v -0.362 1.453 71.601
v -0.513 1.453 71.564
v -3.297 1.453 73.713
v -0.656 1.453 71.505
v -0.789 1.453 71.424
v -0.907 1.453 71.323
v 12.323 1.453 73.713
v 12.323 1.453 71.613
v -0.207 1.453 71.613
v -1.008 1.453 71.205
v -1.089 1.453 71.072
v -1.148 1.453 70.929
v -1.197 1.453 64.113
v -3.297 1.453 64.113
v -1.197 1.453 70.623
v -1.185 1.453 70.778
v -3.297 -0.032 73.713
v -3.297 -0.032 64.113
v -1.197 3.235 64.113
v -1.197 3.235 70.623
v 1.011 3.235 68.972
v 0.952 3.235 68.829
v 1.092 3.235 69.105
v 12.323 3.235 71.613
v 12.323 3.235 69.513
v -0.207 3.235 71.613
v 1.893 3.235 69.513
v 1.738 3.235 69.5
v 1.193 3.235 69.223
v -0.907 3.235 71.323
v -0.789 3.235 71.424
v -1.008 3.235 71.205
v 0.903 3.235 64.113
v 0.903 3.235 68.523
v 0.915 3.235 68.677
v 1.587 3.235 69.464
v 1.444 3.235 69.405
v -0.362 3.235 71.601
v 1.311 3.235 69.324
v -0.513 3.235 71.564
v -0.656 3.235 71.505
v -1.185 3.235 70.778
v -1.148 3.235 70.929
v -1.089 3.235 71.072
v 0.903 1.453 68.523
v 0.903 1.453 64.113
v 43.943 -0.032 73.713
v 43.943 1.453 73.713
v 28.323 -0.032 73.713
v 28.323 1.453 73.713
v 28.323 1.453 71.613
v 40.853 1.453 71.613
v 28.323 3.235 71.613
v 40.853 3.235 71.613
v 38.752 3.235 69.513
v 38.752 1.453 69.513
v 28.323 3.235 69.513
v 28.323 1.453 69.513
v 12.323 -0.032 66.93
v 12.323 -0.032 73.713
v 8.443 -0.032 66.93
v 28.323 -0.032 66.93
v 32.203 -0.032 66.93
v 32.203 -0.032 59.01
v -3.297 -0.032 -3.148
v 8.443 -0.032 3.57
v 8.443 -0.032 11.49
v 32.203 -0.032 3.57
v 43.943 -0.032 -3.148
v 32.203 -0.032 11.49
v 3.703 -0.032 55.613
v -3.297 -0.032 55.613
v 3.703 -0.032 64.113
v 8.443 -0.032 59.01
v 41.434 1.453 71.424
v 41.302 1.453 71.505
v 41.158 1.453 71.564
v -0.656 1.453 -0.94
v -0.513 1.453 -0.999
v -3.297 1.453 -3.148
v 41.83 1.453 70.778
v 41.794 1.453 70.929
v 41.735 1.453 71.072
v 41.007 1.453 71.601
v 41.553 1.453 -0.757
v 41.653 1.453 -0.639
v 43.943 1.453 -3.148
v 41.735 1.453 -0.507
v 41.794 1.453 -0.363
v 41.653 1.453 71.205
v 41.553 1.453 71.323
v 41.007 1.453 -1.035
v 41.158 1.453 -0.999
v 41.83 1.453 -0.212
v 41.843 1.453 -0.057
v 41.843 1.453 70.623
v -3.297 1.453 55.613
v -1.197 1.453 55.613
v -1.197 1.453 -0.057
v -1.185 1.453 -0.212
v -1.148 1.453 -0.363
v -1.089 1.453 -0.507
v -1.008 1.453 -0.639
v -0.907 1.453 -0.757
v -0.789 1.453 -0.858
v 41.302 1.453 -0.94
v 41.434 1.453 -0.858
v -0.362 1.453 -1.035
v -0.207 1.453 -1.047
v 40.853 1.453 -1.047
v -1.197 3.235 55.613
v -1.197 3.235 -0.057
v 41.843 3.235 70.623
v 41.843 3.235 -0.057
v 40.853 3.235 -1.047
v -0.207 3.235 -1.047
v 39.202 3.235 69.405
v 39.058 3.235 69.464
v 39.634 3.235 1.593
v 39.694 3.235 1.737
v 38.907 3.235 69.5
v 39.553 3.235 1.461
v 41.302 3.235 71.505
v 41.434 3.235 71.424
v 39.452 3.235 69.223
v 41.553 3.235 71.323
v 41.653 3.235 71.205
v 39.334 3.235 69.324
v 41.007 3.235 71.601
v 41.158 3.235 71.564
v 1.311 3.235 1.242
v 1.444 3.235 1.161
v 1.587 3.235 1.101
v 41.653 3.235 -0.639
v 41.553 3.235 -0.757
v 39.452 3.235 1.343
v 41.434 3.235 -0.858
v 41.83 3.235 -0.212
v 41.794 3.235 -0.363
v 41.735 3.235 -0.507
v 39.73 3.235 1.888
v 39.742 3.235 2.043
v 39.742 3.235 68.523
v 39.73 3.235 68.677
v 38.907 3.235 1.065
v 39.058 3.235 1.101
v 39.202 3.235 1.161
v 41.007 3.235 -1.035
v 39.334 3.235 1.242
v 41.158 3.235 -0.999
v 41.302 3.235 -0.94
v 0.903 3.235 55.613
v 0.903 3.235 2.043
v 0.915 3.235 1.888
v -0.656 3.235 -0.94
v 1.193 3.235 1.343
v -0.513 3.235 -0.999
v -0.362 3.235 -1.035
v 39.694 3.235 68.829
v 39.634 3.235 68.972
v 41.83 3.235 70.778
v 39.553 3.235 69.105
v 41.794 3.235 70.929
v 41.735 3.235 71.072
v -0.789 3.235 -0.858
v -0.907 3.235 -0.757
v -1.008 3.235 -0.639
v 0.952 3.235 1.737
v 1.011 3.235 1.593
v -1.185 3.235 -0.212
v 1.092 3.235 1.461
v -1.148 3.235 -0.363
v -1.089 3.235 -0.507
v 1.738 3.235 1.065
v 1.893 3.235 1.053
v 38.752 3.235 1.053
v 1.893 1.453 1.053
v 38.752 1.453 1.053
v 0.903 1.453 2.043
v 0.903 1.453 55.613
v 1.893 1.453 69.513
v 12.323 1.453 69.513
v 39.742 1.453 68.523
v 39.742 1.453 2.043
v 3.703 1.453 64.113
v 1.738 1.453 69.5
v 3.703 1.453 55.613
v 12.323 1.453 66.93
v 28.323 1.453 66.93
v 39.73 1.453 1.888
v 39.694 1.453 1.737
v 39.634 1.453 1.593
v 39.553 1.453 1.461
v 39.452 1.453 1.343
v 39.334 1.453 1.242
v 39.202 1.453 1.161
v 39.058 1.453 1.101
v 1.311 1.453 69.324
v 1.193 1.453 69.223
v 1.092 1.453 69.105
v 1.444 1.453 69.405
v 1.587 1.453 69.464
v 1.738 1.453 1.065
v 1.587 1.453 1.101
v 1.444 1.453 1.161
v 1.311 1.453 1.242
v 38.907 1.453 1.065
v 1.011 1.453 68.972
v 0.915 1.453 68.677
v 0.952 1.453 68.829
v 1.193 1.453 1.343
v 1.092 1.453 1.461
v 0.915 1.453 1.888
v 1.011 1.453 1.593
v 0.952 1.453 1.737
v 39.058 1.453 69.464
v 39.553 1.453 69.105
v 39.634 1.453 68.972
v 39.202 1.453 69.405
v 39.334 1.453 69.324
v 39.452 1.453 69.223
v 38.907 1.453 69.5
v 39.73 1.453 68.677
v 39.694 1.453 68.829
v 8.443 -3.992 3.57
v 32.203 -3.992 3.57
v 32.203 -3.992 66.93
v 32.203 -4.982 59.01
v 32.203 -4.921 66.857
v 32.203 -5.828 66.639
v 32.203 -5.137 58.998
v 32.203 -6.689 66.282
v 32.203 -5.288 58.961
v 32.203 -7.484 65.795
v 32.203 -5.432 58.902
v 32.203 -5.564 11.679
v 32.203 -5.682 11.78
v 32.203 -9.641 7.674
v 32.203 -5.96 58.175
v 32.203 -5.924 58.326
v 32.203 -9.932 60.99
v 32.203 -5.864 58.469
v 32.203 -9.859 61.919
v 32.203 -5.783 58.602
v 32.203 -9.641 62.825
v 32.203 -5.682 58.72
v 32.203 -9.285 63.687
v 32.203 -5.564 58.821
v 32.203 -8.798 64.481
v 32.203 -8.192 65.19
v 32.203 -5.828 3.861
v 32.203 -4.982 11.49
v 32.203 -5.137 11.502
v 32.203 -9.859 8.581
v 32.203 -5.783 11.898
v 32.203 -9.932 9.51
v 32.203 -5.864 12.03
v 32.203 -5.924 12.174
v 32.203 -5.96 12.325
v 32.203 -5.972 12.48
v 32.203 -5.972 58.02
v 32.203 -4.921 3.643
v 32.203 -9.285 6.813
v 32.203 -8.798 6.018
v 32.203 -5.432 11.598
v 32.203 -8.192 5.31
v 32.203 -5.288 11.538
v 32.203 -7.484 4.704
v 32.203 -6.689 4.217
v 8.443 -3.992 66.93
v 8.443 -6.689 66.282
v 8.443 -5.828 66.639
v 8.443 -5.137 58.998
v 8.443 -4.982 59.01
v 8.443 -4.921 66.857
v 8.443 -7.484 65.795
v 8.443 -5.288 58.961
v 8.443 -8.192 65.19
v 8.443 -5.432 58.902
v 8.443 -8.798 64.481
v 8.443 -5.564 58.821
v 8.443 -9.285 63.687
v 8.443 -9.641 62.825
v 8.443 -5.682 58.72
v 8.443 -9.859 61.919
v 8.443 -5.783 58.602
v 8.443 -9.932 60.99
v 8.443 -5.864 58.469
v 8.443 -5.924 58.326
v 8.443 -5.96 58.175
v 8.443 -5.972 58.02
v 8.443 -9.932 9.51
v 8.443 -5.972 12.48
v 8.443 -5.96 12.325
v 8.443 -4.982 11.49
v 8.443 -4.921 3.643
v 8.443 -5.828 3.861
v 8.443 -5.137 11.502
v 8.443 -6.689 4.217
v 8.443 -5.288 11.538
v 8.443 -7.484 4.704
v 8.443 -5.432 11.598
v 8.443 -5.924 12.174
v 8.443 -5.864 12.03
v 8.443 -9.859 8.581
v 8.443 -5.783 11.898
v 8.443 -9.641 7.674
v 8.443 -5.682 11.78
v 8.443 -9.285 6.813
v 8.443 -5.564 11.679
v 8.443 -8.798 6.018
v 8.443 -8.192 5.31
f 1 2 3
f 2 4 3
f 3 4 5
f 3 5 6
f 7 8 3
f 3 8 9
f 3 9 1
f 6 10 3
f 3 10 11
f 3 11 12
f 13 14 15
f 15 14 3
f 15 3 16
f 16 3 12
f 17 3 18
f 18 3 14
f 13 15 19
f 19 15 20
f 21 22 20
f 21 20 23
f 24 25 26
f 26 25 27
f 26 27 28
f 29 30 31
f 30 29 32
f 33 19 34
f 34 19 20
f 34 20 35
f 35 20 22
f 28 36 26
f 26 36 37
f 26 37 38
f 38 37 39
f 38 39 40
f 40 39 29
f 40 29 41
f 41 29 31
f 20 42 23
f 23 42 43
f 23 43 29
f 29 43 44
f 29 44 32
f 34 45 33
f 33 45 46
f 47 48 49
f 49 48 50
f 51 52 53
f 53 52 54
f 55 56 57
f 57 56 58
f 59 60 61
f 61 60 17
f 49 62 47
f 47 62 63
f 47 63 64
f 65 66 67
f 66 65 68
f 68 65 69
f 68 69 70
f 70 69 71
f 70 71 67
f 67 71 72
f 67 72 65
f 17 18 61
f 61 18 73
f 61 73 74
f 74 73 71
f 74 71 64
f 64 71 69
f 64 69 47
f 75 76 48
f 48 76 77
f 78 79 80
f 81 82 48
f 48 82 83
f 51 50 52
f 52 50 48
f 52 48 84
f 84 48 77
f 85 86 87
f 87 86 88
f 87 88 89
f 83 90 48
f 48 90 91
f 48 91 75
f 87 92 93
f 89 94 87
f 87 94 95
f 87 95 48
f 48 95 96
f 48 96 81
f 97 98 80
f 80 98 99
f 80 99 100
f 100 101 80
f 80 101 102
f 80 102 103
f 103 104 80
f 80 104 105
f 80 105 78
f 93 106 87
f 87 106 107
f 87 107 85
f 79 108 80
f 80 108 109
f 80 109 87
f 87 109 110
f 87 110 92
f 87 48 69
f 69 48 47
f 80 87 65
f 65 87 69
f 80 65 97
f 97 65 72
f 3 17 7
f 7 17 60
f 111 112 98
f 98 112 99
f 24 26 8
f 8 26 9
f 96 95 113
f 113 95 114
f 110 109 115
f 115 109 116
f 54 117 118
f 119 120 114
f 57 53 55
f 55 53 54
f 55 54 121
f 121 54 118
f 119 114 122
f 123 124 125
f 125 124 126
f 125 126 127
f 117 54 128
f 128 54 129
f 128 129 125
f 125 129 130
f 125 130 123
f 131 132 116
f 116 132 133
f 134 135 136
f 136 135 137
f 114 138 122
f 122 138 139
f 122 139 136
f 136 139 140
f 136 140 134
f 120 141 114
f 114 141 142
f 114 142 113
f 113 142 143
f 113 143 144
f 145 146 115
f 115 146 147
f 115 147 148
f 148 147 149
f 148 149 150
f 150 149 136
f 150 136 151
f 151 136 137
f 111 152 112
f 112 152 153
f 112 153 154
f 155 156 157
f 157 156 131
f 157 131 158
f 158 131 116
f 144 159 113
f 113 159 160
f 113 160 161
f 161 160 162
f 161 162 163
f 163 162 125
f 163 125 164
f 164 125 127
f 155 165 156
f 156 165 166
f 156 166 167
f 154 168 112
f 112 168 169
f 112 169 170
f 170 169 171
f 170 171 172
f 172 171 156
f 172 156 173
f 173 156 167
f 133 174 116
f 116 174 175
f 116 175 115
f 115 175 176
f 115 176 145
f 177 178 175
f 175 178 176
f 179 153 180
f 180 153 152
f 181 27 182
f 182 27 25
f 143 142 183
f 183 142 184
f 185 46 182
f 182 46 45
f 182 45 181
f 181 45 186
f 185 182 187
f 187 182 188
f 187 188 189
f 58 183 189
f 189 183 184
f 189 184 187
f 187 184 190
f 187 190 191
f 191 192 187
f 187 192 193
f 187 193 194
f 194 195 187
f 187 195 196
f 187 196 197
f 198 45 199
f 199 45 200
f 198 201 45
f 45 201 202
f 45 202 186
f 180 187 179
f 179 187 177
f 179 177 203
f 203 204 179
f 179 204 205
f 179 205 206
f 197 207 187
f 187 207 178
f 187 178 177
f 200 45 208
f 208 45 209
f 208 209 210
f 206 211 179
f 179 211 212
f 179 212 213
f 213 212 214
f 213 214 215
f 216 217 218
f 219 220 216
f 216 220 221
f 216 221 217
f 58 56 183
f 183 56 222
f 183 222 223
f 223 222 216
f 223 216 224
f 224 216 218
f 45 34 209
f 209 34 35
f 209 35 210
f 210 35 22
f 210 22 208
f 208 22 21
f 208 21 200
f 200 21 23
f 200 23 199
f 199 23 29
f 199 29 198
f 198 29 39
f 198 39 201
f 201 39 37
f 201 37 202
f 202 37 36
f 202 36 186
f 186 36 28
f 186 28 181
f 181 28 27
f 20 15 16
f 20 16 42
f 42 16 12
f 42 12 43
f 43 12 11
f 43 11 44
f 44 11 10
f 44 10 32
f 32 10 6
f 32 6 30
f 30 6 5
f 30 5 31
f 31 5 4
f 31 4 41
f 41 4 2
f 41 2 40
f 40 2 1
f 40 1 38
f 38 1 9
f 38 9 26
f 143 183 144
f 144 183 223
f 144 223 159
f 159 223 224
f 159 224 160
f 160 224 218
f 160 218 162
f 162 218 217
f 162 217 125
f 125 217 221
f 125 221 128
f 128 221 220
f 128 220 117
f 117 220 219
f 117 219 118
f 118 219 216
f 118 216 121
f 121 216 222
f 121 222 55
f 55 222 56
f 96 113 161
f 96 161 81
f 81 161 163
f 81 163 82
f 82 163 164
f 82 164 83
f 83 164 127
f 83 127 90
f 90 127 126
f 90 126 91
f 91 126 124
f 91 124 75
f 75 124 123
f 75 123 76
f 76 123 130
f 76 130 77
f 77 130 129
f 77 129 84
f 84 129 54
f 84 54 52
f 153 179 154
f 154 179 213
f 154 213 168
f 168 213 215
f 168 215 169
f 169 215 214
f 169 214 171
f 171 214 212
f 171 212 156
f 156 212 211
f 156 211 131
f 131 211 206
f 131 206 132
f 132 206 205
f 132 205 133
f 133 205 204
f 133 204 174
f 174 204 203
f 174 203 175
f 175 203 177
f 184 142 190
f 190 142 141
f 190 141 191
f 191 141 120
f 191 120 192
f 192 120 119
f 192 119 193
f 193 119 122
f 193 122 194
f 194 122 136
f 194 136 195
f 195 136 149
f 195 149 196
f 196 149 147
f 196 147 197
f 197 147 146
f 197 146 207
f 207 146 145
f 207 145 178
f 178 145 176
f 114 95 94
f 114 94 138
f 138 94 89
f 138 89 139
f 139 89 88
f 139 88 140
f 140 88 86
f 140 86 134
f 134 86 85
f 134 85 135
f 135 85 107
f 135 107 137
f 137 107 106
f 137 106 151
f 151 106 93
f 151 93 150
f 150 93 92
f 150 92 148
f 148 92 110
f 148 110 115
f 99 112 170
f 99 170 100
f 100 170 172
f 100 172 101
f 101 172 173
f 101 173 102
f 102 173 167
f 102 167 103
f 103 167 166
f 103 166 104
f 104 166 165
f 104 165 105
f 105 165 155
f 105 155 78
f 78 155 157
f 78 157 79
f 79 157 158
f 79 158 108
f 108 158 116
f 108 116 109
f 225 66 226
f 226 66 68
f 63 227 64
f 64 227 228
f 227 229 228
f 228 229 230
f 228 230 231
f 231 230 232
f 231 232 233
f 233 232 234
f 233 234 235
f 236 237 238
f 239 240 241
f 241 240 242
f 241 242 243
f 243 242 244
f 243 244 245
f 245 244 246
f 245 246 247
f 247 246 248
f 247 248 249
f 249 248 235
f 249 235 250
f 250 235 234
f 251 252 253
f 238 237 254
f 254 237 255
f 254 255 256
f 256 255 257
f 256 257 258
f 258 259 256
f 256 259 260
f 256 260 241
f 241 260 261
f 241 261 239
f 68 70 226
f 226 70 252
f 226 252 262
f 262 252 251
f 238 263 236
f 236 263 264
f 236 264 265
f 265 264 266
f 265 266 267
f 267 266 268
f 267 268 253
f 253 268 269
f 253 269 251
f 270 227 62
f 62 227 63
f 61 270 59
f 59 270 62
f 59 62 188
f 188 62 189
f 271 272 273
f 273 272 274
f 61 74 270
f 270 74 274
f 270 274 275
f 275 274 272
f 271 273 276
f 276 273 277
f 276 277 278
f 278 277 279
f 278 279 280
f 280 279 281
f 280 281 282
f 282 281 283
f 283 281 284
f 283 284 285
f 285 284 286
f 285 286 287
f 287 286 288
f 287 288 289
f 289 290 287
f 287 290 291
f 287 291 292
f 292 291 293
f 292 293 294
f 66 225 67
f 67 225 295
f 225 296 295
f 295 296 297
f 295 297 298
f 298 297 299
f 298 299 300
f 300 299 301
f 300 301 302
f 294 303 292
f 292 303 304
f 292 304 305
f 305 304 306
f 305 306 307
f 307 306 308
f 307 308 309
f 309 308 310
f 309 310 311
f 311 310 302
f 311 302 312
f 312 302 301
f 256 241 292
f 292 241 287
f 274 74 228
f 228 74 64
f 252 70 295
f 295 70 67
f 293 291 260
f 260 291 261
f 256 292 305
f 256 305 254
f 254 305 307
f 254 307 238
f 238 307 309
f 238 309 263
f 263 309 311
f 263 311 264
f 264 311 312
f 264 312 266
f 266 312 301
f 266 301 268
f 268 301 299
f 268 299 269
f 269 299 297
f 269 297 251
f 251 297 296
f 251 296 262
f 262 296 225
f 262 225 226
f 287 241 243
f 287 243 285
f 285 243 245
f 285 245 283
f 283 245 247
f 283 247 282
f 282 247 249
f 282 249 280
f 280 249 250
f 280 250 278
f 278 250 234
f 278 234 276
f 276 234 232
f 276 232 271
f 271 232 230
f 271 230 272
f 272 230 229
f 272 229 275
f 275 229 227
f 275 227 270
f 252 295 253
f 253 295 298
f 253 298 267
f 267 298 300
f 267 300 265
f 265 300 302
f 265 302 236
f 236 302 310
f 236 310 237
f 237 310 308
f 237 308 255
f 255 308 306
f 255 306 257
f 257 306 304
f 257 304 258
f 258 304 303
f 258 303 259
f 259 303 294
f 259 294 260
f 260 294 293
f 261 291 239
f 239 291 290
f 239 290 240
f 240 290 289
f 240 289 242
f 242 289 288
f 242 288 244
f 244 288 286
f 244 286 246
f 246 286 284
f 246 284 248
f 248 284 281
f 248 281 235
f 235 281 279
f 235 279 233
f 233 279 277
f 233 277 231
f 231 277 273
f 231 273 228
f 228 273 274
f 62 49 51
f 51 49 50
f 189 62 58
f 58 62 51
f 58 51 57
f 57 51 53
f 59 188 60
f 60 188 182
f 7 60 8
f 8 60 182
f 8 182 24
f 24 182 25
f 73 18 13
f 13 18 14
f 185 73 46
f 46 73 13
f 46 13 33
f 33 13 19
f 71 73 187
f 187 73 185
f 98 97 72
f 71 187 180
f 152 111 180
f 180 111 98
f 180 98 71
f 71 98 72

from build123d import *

# Parameters (mm, degrees)
PCB_DIMENSIONS_W    = 47.716732244
PCB_DIMENSIONS_H    = 77.636732244
BOSS_EXTRUDE3_DEPTH = 1.5
SKETCH5_W           = 43.474091557
SKETCH5_H           = 73.394091557
SKETCH5_W_2         = 39.23145087
SKETCH5_H_2         = 69.15145087
BOSS_EXTRUDE4_DEPTH = 1.8
FILLET1_R           = 1
SKETCH6_W           = 12
SKETCH6_H           = 31.966906412
SKETCH6_H_2         = 32.033093588
BOSS_EXTRUDE5_DEPTH = 10
SKETCH7_W           = 48
SKETCH7_H           = 6
CUT_EXTRUDE1_DEPTH  = 24
FILLET2_R           = 6
FILLET3_R           = 1
SCALE1_SCALE        = 0.99
CUT_EXTRUDE2_DEPTH  = 10
SKETCH9_W           = 7
SKETCH9_H           = 8.5
CUT_EXTRUDE3_DEPTH  = 10


with BuildPart() as part:
    # PCB Dimensions → Boss-Extrude3 (new body)
    with BuildSketch(Plane(origin=(0, 0, 0), x_dir=(1, 0, 0), z_dir=(0, 1, 0))):
        with Locations((20.322832216, -35.282832216)):
            Rectangle(PCB_DIMENSIONS_W, PCB_DIMENSIONS_H)
    extrude(amount=BOSS_EXTRUDE3_DEPTH)

    # Sketch5 → Boss-Extrude4 (add)
    with BuildSketch(Plane(origin=(0, 1.5, 0), x_dir=(1, 0, 0), z_dir=(0, 1, 0))):
        with Locations((20.322832217, -35.282832217)):
            Rectangle(SKETCH5_W, SKETCH5_H)
        with Locations((20.322832216, -35.282832216)):
            Rectangle(SKETCH5_W_2, SKETCH5_H_2, mode=Mode.SUBTRACT)
    extrude(amount=BOSS_EXTRUDE4_DEPTH)

    # Fillet1
    fillet1_edges = [part.edges().sort_by_distance(p)[0] for p in [
        (-1.414213562, 2.4, -1.414213562),
        (-1.414213562, 2.4, 71.979877995),
        (42.059877995, 2.4, 71.979877995),
        (42.059877995, 2.4, -1.414213562),
        (0.707106781, 2.4, 0.707106781),
        (0.707106781, 2.4, 69.858557651),
        (39.938557651, 2.4, 69.858557651),
        (39.938557651, 2.4, 0.707106781),
    ]]
    fillet(fillet1_edges, radius=FILLET1_R)

    # Sketch6 → Boss-Extrude5 (add)
    with BuildSketch(Plane.XZ):
        with Locations((14.322832216, 51.266285422)):
            Rectangle(SKETCH6_W, SKETCH6_H)
        with Locations((26.322832216, 51.266285422)):
            Rectangle(SKETCH6_W, SKETCH6_H)
        with Locations((14.322832216, 19.266285422)):
            Rectangle(SKETCH6_W, SKETCH6_H_2)
        with Locations((26.322832216, 19.266285422)):
            Rectangle(SKETCH6_W, SKETCH6_H_2)
    extrude(amount=BOSS_EXTRUDE5_DEPTH)

    # Sketch7 → Cut-Extrude1 (cut)
    with BuildSketch(Plane(origin=(32.322832216, 0, 0), x_dir=(0, 0, -1), z_dir=(1, 0, 0))):
        with Locations((-35.249738628, -3)):
            Rectangle(SKETCH7_W, SKETCH7_H)
    extrude(amount=-CUT_EXTRUDE1_DEPTH, mode=Mode.SUBTRACT)

    # Fillet2
    fillet2_edges = [part.edges().sort_by_distance(p)[0] for p in [
        (20.322832216, -10, 67.249738628),
        (20.322832216, -10, 3.249738628),
    ]]
    fillet(fillet2_edges, radius=FILLET2_R)

    # Fillet3
    fillet3_edges = [part.edges().sort_by_distance(p)[0] for p in [
        (20.322832216, -6, 59.249738628),
        (20.322832216, -6, 11.249738628),
    ]]
    fillet(fillet3_edges, radius=FILLET3_R)


with BuildPart() as part_1:
    # Scale1: scaled about (20.322832216, -3.218350849, 35.264379677)
    add(part.part.scale(SCALE1_SCALE).moved(Location((0.203228322, -0.032183508, 0.352643797))))

    # Sketch8 → Cut-Extrude2 (cut)
    with BuildSketch(Plane.XZ.offset(0.032183508)):
        Polygon((20.322832216, 73.712830152), (12.322832216, 73.712830152), (12.322832216, 66.929885038), (28.322832216, 66.929885038), (28.322832216, 73.712830152), align=None)
    extrude(amount=-CUT_EXTRUDE2_DEPTH, mode=Mode.SUBTRACT)

    # Sketch9 → Cut-Extrude3 (cut)
    with BuildSketch(Plane.XZ.offset(0.032183508)):
        with Locations((0.203049755, 59.862830152)):
            Rectangle(SKETCH9_W, SKETCH9_H)
    extrude(amount=-CUT_EXTRUDE3_DEPTH, mode=Mode.SUBTRACT)


solid = part_1.part
